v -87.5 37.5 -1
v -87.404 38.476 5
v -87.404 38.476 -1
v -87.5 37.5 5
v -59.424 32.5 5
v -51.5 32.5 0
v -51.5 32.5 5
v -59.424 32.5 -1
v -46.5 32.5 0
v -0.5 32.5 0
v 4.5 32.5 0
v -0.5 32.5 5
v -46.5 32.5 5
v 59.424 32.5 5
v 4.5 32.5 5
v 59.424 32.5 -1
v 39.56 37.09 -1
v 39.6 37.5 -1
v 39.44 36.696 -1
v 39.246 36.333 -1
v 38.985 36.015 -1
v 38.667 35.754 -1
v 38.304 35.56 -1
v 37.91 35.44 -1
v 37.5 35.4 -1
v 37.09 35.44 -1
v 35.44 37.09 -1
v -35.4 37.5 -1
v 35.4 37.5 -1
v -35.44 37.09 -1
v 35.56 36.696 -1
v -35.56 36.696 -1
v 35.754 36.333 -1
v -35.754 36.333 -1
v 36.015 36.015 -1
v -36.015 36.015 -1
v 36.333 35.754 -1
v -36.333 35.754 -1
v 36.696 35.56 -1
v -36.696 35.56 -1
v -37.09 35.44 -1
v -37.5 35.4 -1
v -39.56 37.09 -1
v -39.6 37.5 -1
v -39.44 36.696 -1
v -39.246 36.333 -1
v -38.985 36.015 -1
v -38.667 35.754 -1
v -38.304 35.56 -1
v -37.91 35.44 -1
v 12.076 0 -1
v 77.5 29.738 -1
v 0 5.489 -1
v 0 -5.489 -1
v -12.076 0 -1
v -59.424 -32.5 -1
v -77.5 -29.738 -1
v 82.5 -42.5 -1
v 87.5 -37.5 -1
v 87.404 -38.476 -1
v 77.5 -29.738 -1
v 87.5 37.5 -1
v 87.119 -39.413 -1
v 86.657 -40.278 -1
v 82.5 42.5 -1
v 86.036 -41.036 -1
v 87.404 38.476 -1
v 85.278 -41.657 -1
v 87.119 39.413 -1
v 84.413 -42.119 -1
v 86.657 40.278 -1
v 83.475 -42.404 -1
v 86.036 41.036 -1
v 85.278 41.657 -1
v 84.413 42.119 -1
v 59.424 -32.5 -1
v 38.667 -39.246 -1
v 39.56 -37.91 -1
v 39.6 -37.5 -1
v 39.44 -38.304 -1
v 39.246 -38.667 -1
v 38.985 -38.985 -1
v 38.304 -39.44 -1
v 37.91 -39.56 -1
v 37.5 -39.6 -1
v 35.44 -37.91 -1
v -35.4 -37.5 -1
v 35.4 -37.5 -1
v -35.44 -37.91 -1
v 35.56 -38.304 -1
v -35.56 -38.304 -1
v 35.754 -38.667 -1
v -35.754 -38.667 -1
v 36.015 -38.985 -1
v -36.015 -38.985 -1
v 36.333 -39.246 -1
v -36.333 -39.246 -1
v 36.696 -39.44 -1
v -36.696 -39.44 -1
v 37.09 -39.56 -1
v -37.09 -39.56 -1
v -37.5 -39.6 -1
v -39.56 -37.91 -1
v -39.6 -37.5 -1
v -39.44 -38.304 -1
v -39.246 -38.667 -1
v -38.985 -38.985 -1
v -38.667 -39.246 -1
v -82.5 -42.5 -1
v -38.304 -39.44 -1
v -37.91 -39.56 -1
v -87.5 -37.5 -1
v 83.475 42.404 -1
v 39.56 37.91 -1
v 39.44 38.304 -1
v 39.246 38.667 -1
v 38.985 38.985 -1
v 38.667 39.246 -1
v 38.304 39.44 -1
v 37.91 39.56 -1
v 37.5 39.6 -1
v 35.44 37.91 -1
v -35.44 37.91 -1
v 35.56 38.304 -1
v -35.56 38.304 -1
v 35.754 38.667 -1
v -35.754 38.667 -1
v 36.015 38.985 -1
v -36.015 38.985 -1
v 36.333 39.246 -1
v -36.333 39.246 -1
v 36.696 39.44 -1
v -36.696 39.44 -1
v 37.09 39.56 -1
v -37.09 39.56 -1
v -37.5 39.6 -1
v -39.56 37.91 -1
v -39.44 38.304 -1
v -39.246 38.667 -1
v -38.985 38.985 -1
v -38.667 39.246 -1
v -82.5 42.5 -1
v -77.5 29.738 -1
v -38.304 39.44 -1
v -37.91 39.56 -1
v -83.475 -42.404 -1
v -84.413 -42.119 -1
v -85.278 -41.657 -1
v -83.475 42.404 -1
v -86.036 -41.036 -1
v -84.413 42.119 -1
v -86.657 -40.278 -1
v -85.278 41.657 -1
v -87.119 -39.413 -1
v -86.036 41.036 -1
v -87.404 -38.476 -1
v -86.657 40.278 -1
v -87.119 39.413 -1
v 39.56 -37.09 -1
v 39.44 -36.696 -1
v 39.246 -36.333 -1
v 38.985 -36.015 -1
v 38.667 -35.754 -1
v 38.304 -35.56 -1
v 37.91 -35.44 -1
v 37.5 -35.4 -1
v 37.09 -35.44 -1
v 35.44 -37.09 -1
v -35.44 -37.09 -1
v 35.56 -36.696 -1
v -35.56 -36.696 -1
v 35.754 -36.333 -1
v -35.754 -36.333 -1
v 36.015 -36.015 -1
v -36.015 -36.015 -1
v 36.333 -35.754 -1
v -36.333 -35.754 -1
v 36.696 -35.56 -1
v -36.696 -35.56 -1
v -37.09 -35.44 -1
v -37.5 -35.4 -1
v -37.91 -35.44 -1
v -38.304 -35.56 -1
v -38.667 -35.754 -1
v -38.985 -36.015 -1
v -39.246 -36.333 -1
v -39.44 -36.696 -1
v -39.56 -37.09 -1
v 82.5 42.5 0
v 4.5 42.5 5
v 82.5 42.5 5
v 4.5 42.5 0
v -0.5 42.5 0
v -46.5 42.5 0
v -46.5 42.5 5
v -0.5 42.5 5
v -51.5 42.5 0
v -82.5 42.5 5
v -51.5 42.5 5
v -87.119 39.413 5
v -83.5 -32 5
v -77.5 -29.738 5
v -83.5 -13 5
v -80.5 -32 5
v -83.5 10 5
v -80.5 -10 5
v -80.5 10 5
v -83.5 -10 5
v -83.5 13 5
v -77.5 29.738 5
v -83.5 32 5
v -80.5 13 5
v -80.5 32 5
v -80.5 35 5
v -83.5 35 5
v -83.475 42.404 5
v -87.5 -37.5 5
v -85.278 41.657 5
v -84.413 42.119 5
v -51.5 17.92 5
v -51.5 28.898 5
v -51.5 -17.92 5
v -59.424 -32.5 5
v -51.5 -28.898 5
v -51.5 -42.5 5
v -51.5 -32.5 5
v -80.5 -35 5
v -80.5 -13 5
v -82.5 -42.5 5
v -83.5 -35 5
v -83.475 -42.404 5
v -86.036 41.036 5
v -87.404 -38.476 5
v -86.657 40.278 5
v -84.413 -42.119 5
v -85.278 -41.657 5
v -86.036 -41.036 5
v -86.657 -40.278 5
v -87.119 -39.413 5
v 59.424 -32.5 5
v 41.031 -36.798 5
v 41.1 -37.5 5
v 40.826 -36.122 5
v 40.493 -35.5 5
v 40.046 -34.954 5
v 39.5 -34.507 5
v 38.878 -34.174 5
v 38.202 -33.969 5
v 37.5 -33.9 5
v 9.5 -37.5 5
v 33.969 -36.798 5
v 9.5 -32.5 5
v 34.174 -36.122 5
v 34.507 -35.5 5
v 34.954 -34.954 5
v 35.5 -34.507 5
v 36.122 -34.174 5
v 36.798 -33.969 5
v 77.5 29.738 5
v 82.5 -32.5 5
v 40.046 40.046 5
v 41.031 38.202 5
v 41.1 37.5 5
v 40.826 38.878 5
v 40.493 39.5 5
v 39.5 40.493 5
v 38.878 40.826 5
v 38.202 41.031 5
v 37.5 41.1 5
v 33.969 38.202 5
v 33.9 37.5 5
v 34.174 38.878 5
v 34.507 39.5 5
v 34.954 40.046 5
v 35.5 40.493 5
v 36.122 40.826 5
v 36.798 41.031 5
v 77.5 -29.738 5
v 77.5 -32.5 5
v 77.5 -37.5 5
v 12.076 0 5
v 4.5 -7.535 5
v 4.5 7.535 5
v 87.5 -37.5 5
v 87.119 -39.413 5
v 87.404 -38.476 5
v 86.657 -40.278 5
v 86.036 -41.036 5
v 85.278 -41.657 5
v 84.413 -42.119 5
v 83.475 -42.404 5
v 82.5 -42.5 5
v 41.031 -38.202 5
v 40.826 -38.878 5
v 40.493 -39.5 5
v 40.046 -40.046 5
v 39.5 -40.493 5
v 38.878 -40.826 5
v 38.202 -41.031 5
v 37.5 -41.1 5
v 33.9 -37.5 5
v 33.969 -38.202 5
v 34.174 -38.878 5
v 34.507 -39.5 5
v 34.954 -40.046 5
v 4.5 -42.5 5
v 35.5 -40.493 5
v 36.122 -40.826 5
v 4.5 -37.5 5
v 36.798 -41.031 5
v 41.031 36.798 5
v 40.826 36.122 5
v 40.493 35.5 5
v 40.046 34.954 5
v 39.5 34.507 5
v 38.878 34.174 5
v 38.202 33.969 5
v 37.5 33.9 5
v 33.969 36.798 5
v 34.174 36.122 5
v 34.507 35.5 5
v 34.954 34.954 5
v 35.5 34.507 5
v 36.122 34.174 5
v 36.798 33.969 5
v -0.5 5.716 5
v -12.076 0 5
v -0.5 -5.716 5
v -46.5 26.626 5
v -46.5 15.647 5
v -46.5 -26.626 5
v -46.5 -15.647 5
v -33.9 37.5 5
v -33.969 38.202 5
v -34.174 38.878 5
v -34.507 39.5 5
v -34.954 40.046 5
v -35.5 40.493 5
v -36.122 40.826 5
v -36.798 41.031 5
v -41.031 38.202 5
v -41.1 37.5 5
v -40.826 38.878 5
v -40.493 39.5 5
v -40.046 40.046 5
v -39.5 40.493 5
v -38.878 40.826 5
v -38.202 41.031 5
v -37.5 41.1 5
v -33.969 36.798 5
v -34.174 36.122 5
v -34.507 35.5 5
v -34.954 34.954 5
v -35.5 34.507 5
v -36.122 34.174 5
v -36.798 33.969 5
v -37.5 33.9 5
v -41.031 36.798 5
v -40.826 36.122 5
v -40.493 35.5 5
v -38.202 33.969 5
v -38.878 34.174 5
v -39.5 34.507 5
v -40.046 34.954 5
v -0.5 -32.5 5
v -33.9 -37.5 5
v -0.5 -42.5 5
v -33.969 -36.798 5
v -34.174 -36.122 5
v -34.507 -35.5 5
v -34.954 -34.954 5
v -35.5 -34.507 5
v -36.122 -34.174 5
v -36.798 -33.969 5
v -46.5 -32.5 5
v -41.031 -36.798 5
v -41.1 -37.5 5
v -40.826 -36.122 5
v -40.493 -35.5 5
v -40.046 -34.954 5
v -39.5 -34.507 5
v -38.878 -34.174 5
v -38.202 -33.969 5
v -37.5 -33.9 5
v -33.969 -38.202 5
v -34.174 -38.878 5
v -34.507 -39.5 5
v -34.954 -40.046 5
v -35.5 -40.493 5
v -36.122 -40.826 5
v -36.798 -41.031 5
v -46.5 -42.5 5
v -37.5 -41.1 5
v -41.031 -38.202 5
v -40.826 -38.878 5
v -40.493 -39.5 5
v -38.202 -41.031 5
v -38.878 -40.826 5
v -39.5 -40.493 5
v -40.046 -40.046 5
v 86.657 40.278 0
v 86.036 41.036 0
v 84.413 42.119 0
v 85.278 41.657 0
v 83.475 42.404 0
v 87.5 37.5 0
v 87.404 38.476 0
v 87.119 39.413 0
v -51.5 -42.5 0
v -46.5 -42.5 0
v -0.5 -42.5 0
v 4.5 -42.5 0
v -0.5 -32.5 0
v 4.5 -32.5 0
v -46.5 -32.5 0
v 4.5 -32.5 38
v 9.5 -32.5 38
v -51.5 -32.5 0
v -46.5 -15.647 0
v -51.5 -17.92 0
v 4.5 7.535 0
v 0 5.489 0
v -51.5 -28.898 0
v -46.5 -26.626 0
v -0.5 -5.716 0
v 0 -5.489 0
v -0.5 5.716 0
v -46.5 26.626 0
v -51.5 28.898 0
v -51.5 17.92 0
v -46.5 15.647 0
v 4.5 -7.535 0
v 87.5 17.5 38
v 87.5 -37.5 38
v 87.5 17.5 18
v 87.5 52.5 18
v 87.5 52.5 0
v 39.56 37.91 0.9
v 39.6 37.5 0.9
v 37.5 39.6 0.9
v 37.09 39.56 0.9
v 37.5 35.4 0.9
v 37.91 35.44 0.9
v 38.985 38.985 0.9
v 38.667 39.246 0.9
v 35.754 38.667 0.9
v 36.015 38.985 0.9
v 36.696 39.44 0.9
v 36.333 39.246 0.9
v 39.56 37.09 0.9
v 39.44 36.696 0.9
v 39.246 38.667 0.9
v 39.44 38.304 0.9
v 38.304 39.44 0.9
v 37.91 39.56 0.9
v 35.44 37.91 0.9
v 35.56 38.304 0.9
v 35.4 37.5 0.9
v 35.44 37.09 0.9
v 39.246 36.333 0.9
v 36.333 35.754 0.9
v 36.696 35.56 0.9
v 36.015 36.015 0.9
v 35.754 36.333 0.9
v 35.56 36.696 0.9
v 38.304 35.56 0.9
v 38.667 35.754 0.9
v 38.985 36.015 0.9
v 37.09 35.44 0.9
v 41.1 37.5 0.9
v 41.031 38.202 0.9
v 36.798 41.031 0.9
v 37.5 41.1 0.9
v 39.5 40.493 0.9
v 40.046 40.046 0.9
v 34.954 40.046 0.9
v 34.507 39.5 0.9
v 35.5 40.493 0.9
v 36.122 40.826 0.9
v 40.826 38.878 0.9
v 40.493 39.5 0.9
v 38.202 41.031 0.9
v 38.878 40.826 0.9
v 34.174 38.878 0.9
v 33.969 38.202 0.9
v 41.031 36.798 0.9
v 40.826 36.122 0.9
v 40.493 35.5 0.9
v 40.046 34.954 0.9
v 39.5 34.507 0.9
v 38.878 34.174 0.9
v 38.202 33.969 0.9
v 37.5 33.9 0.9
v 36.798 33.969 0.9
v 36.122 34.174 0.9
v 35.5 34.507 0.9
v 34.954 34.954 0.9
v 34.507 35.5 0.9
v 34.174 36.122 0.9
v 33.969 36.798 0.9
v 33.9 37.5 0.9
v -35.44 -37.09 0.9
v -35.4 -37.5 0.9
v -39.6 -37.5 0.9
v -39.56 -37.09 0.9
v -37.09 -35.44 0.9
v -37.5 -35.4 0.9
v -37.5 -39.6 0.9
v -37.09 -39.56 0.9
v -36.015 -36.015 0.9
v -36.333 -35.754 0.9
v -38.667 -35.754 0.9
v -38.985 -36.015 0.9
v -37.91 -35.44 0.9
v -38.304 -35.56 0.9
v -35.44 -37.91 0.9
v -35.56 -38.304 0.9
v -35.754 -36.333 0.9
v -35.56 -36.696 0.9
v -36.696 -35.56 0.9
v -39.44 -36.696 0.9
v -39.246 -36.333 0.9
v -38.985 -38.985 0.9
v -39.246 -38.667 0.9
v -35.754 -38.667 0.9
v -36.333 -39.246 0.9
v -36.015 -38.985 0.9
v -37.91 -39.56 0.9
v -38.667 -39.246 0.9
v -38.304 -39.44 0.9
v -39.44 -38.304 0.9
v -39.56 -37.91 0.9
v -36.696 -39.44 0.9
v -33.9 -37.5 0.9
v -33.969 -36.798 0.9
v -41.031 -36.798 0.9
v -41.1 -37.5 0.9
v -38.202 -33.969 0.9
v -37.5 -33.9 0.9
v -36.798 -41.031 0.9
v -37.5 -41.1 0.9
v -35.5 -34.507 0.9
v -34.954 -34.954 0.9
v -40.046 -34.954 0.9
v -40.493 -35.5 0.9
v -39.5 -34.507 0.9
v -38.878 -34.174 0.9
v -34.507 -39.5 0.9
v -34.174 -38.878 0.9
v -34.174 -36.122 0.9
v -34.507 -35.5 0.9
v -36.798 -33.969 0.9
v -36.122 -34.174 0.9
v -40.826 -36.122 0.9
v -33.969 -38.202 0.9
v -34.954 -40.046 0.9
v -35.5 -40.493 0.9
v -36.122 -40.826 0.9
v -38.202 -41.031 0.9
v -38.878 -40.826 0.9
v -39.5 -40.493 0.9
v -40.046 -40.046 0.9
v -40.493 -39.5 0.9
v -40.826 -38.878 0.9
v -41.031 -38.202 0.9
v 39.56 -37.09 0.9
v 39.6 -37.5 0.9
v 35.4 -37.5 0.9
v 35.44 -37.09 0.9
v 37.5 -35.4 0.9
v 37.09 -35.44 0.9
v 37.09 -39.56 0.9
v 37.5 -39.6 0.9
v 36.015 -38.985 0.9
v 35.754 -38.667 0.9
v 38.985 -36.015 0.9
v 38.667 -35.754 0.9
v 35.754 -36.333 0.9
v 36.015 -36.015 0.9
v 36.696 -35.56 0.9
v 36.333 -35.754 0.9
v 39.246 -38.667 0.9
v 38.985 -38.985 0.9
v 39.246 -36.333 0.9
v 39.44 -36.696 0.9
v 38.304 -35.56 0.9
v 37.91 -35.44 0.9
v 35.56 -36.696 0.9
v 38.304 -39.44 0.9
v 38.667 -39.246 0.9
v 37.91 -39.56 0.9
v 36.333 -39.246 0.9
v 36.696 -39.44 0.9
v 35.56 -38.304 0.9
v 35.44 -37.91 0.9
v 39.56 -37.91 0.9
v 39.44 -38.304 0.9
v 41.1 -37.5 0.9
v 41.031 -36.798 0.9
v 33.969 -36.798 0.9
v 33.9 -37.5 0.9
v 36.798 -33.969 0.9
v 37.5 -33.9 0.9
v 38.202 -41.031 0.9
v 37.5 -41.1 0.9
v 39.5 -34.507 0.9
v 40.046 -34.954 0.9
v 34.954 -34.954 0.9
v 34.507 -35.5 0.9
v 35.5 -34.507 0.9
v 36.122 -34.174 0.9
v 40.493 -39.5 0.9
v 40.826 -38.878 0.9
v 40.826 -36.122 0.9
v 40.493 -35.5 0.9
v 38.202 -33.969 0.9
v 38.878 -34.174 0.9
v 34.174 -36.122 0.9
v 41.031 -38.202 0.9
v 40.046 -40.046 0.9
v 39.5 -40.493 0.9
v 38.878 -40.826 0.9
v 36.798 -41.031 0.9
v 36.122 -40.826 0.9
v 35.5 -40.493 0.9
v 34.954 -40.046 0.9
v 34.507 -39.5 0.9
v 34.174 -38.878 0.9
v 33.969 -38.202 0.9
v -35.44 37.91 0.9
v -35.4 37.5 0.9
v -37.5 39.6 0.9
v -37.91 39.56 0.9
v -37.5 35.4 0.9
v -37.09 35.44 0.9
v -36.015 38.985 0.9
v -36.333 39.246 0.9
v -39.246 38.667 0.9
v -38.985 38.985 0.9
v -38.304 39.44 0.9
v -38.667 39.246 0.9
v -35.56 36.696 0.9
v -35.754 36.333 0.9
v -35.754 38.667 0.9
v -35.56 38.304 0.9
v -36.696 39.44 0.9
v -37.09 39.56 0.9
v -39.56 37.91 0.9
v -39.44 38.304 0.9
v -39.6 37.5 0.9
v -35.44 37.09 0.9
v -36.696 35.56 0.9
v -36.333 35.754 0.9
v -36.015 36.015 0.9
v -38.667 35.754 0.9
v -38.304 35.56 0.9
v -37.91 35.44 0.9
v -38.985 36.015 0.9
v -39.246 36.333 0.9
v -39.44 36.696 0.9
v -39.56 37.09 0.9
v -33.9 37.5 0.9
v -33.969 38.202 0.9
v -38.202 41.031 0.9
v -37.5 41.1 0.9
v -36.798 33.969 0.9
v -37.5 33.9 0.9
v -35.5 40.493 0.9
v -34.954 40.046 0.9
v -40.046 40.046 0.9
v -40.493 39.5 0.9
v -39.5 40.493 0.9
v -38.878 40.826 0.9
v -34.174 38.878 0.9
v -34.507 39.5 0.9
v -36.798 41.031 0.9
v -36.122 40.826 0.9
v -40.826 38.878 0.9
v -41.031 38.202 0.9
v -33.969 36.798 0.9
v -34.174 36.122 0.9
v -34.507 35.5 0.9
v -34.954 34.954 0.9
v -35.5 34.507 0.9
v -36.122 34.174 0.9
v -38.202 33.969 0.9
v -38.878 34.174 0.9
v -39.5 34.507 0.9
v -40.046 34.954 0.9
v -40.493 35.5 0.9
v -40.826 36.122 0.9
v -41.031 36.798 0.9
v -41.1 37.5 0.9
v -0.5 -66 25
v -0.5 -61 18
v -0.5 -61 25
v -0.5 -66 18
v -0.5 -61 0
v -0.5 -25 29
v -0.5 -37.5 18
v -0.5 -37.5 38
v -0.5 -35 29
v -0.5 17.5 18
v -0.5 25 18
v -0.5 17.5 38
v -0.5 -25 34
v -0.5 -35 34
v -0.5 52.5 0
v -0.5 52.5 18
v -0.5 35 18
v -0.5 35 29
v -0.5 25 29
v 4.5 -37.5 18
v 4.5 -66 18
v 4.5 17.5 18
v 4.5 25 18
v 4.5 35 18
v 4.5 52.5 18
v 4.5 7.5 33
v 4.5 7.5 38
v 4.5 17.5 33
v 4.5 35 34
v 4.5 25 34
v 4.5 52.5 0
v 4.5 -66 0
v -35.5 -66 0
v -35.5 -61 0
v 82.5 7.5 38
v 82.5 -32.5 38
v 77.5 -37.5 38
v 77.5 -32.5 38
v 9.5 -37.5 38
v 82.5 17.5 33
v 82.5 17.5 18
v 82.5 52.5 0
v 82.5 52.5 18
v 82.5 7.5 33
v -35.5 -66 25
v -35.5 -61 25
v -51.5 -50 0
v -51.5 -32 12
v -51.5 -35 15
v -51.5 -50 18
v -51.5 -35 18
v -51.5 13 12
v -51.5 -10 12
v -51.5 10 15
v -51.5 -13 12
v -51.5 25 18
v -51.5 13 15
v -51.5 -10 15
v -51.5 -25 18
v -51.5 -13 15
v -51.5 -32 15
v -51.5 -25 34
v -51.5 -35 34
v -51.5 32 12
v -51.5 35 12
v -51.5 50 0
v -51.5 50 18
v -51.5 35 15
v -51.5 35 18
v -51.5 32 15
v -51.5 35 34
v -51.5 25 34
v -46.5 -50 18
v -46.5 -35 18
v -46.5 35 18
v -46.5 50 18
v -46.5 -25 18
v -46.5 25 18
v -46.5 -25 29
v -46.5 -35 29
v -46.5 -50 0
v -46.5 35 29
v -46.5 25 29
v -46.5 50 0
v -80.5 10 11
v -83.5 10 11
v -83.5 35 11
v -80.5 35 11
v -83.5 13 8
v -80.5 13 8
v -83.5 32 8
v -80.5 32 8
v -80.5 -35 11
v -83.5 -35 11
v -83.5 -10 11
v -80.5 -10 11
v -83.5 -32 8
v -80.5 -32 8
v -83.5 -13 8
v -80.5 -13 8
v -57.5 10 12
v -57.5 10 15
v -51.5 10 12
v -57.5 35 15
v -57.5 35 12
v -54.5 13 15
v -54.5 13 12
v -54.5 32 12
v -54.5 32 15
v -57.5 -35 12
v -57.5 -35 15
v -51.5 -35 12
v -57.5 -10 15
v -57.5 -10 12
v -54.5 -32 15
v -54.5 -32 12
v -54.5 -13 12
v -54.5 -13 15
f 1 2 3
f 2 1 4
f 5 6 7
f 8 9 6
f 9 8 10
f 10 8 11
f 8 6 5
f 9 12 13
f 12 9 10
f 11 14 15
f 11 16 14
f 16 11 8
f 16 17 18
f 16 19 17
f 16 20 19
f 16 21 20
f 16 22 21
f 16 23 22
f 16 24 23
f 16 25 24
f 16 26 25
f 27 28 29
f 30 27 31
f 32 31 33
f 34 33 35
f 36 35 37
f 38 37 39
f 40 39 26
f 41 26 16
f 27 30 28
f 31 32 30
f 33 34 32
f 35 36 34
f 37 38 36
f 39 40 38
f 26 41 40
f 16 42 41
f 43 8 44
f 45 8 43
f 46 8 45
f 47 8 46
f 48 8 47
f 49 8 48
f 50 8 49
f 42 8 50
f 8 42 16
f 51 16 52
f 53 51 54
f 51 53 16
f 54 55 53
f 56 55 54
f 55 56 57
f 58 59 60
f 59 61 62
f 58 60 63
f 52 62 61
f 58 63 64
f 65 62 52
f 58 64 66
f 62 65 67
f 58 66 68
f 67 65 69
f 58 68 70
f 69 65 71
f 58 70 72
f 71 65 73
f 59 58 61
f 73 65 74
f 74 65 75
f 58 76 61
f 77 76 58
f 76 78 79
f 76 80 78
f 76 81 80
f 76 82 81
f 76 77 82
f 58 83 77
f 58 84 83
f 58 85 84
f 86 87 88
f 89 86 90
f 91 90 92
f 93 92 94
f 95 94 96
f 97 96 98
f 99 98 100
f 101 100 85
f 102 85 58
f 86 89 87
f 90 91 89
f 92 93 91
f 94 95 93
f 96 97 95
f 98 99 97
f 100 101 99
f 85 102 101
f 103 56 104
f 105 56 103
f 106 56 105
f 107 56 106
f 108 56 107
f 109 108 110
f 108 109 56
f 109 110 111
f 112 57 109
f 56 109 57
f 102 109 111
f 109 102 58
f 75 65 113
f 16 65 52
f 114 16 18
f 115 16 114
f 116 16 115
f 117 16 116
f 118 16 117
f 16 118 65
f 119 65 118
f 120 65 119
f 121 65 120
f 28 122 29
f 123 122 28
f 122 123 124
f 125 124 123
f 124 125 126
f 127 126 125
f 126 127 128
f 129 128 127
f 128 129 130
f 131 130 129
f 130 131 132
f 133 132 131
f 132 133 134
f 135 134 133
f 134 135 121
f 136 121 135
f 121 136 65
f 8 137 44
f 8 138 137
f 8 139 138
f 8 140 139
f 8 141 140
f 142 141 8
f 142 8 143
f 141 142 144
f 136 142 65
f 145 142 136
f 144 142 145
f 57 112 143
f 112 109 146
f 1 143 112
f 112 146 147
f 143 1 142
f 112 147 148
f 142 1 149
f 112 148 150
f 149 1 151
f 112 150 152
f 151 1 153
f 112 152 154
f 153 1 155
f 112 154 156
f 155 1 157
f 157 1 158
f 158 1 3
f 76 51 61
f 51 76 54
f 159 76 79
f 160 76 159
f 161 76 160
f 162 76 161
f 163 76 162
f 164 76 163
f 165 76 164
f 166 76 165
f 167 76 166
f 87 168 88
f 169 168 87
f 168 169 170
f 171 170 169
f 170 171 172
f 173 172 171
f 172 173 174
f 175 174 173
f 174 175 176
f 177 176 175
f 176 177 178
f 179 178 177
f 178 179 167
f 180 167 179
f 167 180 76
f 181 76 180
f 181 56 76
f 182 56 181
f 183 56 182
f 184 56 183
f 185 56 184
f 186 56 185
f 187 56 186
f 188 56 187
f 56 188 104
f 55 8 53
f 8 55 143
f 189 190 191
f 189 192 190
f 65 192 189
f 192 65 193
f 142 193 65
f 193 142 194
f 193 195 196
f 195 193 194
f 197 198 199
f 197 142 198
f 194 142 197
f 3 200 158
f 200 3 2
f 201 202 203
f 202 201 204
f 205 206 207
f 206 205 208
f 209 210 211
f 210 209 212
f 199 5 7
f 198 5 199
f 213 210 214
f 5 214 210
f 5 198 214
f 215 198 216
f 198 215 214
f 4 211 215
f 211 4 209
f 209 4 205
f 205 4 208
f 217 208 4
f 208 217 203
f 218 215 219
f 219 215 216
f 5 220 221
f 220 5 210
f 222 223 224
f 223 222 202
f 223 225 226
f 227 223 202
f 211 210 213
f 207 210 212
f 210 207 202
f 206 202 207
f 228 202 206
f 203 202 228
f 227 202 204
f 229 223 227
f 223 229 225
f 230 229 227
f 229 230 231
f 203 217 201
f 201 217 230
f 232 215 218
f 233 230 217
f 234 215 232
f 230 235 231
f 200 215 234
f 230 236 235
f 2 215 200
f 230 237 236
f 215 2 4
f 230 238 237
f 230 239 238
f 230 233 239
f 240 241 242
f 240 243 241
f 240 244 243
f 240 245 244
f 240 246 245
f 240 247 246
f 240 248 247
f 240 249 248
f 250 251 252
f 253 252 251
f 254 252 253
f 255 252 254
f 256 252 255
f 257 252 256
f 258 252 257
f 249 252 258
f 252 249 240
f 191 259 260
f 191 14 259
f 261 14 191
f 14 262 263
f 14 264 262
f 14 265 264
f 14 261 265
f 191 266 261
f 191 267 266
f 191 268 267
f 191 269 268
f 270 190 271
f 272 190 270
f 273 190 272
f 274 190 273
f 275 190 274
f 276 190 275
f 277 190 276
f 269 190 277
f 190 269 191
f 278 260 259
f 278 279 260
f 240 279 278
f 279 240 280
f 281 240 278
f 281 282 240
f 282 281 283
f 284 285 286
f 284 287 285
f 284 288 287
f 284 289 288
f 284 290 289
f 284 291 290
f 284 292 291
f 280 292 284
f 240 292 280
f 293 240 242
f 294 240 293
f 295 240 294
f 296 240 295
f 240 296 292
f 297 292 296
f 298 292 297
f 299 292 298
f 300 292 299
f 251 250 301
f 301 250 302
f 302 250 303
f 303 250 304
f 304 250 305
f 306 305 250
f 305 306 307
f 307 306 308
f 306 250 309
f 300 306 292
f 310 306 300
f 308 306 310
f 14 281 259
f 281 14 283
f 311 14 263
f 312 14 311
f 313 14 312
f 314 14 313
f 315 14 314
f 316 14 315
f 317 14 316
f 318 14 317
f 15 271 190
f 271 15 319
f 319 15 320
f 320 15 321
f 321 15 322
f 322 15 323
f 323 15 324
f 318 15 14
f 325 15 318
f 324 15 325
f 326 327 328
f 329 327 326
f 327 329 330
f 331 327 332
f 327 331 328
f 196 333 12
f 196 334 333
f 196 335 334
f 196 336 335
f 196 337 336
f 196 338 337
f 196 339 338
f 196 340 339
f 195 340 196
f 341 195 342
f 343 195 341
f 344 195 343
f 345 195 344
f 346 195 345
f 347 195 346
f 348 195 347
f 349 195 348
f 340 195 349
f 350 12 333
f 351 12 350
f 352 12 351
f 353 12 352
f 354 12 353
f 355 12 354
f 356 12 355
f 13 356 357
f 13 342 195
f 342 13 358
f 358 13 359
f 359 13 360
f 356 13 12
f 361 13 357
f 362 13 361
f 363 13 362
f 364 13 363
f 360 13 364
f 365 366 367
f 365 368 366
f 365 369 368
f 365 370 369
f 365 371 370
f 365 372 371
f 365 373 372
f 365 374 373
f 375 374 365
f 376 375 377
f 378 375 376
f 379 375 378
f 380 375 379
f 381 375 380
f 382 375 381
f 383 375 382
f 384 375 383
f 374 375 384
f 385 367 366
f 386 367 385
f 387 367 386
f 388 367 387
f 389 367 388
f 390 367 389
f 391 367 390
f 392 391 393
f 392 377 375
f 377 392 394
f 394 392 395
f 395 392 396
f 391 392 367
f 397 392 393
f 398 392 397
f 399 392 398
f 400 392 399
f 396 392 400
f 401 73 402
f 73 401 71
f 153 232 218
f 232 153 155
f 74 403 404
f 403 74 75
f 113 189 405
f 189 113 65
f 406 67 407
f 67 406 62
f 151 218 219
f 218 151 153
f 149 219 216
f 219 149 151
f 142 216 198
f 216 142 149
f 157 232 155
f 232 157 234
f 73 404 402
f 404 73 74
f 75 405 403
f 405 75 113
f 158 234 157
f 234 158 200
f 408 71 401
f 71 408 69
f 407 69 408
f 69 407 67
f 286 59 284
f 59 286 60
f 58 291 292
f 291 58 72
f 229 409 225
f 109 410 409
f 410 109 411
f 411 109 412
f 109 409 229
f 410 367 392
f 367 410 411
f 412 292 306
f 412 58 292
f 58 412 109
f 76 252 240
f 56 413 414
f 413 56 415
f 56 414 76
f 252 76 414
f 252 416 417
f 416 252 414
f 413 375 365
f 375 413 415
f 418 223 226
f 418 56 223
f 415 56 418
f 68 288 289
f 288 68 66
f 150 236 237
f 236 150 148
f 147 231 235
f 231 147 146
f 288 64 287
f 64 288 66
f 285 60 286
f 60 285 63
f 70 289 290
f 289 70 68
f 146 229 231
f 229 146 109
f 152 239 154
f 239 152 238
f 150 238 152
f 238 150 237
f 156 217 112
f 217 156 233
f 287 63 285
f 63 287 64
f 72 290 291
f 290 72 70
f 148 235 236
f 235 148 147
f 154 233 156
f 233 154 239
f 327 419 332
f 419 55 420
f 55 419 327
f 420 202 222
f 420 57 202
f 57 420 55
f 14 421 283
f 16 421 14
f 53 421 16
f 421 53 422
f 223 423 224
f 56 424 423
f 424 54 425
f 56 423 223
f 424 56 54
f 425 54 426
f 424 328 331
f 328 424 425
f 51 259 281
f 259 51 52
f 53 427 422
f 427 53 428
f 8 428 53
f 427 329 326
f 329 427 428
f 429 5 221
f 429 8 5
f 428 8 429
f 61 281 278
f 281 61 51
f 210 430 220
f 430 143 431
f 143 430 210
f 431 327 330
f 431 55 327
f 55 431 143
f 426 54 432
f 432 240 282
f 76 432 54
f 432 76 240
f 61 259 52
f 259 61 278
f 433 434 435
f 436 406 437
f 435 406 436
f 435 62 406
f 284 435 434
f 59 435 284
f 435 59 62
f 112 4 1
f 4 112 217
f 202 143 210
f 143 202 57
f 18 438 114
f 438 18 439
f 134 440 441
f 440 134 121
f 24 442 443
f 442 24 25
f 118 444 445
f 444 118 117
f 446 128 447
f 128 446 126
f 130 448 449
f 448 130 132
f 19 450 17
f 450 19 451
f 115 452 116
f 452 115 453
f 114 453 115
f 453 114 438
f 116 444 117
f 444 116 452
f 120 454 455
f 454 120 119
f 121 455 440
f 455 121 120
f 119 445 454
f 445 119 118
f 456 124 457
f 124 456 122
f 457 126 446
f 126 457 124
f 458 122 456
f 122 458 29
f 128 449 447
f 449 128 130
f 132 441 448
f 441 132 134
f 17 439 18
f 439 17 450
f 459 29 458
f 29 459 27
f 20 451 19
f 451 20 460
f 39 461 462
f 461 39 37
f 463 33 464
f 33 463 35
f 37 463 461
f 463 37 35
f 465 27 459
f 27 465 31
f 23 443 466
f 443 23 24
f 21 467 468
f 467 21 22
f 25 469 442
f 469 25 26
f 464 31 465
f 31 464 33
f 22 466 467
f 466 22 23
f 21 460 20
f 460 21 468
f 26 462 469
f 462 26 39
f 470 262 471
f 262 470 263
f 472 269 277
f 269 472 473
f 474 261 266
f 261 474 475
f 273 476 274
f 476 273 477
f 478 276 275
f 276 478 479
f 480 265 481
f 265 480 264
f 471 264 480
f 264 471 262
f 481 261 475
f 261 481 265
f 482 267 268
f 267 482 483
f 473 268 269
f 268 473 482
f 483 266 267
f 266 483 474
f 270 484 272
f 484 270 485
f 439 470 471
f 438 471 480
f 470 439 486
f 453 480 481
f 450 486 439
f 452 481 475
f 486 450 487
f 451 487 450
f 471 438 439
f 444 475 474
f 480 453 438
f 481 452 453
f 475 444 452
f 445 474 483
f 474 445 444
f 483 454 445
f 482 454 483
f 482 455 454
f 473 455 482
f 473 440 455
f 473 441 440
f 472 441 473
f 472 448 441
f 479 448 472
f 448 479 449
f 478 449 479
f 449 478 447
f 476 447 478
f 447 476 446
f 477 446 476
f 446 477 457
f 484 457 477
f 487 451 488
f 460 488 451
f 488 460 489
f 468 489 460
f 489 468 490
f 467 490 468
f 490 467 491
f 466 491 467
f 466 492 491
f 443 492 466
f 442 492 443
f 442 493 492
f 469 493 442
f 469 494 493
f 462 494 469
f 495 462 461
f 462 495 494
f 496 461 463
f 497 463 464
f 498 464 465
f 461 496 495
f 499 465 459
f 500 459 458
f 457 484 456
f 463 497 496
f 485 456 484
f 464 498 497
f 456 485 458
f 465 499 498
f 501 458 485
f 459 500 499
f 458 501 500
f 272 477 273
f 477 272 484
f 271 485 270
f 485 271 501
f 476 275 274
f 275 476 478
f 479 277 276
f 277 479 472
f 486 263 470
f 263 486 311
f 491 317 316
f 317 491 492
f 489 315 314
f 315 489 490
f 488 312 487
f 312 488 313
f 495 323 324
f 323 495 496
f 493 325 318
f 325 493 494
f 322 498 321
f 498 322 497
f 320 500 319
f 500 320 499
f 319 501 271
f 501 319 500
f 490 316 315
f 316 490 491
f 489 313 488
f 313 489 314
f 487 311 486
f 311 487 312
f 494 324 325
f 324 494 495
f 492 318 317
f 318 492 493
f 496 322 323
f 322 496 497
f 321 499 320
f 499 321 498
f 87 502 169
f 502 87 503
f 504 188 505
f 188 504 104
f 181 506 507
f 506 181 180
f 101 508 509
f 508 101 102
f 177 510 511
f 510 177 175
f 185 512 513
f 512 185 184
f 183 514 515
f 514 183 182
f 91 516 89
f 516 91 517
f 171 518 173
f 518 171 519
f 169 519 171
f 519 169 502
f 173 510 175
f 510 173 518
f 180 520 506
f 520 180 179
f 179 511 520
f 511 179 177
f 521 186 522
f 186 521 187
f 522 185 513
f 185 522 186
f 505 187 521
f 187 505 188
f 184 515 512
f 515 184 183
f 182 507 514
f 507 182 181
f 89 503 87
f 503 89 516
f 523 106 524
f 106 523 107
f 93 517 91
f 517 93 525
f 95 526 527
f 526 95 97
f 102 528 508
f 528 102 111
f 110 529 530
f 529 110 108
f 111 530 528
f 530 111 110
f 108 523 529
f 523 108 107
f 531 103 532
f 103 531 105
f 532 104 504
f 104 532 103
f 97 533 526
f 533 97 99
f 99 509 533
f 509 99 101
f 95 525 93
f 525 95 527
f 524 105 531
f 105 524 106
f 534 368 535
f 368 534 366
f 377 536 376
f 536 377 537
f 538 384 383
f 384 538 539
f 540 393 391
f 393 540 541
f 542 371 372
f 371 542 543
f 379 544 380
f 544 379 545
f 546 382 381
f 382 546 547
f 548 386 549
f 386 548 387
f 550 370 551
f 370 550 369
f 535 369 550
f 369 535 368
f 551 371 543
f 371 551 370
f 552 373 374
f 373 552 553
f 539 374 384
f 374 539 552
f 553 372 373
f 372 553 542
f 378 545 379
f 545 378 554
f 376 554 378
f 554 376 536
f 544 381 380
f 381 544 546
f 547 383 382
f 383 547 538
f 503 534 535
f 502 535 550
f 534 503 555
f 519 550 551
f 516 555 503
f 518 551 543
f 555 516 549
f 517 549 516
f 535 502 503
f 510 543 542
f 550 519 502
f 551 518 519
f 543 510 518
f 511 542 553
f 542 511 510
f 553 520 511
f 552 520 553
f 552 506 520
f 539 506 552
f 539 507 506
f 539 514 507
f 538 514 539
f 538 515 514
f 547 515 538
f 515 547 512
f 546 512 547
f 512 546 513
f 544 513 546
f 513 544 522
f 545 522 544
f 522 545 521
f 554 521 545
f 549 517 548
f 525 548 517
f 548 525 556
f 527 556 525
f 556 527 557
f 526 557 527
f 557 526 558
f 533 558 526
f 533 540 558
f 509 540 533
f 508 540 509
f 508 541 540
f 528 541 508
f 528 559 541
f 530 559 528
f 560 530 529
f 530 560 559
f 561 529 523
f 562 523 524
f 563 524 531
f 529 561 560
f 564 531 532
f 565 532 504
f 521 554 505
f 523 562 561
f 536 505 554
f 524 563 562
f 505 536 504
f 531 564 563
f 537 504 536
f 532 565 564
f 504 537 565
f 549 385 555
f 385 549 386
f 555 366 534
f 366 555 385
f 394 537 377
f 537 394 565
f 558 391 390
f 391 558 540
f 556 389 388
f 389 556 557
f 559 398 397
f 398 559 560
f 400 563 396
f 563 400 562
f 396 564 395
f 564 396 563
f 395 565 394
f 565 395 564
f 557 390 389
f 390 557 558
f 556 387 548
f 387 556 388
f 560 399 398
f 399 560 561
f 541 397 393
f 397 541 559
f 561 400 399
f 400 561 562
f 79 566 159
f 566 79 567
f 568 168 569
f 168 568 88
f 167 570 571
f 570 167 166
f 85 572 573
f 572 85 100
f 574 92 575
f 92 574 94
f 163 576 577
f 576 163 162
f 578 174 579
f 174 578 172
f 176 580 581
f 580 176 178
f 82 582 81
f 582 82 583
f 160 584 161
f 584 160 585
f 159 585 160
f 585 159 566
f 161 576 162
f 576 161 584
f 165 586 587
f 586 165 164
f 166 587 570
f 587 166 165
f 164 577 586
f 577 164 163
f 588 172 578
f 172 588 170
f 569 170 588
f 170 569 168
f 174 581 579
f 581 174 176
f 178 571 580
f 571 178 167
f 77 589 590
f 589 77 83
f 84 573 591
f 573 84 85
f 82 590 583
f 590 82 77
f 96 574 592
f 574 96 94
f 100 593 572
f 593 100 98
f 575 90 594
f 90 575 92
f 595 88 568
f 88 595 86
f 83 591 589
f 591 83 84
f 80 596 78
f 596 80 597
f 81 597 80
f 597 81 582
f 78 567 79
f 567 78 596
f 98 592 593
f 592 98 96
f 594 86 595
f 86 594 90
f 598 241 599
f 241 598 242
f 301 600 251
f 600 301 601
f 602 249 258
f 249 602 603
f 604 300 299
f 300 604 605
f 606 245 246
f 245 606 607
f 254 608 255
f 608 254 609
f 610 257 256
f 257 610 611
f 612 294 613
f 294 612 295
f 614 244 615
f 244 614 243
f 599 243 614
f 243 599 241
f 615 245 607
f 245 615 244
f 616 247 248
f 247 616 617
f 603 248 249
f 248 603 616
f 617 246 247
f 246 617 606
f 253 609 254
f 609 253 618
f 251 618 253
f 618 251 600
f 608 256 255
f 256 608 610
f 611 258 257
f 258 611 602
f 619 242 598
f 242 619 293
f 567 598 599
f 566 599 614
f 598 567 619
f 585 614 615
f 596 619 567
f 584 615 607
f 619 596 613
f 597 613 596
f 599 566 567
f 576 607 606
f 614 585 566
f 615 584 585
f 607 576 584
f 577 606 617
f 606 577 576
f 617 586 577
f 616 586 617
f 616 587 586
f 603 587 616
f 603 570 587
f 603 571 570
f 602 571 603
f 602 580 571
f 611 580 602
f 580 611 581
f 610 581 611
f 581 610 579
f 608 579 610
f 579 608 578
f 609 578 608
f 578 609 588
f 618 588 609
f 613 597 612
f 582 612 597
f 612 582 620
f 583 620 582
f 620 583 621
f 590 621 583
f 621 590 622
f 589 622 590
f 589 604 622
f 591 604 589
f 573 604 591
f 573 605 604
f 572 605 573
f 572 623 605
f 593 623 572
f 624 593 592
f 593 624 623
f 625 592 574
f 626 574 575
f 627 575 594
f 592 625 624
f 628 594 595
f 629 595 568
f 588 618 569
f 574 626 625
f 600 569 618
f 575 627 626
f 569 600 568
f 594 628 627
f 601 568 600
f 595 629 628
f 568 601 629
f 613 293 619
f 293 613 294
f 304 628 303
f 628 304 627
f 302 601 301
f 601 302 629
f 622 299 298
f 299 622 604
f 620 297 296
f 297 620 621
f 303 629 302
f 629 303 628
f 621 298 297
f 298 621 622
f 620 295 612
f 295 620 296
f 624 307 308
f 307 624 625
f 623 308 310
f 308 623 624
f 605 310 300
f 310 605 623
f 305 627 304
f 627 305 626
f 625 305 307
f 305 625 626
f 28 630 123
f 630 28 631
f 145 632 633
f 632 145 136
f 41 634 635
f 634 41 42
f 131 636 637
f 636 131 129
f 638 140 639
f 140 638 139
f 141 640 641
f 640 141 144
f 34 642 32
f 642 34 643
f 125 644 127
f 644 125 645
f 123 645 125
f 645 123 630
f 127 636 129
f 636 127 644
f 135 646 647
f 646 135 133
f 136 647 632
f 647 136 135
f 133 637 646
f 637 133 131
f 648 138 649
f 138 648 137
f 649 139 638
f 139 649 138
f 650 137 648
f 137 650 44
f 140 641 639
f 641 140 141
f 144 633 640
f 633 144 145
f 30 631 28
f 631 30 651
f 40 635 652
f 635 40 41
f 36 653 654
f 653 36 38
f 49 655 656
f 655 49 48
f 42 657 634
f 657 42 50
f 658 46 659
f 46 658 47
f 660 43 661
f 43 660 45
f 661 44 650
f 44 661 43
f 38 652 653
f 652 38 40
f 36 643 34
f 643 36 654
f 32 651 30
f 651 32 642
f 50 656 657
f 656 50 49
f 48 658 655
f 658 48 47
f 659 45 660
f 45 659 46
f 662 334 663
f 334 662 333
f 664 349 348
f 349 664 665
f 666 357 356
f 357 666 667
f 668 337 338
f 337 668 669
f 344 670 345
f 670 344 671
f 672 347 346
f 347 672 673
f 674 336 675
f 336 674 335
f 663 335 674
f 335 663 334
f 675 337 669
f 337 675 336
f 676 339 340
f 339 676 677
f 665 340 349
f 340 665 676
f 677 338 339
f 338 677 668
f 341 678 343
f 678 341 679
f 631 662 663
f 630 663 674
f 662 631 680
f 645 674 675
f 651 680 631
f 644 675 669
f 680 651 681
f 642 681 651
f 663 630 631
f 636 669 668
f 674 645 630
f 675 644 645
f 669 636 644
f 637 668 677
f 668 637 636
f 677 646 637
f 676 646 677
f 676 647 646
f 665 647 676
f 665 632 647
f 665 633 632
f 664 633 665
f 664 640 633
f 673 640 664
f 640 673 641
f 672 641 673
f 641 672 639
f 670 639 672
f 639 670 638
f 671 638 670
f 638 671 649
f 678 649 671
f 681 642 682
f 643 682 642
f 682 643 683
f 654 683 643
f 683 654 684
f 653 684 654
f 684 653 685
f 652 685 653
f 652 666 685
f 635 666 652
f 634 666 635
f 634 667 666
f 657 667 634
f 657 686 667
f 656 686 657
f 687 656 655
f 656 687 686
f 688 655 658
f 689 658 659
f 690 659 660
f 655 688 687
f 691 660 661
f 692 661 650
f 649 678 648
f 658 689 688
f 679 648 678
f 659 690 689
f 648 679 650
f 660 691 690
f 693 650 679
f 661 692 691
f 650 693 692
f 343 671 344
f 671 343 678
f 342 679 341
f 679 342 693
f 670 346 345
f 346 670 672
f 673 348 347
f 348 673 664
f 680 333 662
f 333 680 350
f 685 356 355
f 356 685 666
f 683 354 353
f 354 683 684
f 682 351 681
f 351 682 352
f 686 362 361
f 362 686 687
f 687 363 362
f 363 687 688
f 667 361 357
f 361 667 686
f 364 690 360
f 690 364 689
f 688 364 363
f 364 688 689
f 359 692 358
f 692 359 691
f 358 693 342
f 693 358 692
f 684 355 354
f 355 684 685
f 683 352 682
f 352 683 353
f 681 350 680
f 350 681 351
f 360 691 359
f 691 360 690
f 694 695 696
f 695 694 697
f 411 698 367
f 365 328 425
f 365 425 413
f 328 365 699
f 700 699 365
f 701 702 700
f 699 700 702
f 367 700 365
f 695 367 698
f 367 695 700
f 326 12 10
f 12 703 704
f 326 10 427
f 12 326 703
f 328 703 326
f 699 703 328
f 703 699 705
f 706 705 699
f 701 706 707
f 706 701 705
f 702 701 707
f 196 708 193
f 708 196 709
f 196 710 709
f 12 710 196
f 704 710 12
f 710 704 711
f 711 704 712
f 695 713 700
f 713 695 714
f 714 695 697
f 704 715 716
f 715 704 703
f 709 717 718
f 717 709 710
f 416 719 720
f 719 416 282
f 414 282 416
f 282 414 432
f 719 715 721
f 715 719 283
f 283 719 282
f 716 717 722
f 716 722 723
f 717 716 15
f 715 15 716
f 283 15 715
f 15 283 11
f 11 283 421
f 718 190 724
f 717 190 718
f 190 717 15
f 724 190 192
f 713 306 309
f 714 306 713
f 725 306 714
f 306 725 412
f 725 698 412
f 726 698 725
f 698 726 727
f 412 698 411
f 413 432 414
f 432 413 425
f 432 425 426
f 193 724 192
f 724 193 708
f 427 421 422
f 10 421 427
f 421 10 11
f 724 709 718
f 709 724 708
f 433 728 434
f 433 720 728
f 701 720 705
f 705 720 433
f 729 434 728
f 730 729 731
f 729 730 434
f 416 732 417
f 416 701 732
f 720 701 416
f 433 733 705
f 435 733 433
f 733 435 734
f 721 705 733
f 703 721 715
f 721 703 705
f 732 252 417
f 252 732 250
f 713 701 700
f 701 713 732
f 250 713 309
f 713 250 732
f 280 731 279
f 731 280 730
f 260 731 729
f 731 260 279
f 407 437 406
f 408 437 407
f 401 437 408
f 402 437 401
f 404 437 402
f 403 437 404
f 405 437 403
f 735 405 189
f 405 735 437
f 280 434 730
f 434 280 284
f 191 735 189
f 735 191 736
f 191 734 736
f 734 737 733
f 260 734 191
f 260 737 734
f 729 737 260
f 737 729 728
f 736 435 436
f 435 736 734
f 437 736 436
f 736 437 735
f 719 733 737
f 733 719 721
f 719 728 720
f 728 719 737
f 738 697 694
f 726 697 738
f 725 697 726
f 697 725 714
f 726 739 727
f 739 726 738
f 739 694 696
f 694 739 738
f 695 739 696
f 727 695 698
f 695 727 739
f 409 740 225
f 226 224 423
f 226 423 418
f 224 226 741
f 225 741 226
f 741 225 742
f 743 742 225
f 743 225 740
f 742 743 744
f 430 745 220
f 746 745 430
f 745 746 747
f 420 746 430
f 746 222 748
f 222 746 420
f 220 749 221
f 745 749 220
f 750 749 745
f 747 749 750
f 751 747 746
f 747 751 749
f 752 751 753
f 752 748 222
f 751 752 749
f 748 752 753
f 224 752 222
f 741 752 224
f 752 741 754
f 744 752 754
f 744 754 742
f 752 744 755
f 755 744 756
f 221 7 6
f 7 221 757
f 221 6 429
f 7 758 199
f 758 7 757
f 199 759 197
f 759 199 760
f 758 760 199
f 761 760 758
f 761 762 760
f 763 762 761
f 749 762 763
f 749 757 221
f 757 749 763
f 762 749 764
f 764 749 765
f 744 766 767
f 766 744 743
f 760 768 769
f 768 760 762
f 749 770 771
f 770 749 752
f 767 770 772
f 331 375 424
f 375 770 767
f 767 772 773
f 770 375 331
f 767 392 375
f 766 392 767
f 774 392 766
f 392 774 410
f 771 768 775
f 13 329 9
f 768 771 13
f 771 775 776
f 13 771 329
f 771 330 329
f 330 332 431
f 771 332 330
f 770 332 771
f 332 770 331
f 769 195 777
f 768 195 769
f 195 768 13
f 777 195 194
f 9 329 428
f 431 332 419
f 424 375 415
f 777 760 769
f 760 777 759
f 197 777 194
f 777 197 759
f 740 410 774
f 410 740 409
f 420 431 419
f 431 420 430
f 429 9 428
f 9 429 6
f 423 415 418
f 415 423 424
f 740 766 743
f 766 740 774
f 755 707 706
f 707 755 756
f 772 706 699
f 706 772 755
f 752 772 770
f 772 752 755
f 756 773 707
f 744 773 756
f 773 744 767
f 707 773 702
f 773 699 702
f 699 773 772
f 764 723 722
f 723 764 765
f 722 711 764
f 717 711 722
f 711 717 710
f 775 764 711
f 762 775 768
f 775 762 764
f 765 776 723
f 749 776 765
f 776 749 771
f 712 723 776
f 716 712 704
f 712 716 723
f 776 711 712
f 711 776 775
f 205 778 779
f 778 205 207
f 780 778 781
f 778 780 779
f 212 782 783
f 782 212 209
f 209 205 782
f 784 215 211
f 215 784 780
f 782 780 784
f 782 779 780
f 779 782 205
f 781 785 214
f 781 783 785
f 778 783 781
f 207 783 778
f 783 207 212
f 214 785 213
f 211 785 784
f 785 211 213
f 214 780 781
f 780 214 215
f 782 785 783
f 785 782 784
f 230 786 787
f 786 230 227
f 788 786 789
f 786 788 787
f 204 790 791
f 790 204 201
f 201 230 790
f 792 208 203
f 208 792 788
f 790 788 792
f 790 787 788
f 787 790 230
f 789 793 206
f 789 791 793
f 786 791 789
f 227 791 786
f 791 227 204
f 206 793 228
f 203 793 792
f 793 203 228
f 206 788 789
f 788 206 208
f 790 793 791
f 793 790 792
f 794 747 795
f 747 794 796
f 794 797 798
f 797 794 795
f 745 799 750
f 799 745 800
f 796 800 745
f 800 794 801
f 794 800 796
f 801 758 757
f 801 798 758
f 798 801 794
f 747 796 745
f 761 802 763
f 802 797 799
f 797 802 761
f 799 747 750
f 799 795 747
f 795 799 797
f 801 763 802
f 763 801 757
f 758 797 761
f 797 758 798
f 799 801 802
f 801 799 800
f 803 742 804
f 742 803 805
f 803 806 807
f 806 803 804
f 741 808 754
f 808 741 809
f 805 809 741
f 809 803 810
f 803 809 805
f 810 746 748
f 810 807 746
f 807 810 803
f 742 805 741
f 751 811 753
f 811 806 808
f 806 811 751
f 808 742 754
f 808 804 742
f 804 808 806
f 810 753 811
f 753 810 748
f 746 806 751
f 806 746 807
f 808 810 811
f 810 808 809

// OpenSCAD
vesa_distance = 75;
vesa_distance_half = vesa_distance / 2;
screw_hole_d = 4.2;
screw_hole_od = 7.2;
$fn = 32;

module mounting_base_body() {
    vesa_z_offset = -1;
    vesa_h = 6;
    hull() {
        translate([-165/2, vesa_distance_half, vesa_z_offset]) cylinder(d=10, h=vesa_h);
        translate([165/2, vesa_distance_half, vesa_z_offset]) cylinder(d=10, h=vesa_h);
    }
    hull() {
        translate([-165/2, -vesa_distance_half, vesa_z_offset]) cylinder(d=10, h=vesa_h);
        translate([165/2, -vesa_distance_half, vesa_z_offset]) cylinder(d=10, h=vesa_h);
    }  
    hull() {
        translate([-165/2, -vesa_distance_half, vesa_z_offset]) cylinder(d=10, h=vesa_h);
        translate([165/2, vesa_distance_half, vesa_z_offset]) cylinder(d=10, h=vesa_h);
    }    
    hull() {
        translate([-165/2, vesa_distance_half, vesa_z_offset]) cylinder(d=10, h=vesa_h);
        translate([165/2, -vesa_distance_half, vesa_z_offset]) cylinder(d=10, h=vesa_h);
    }        
    hull() {
        translate([165/2, vesa_distance_half, vesa_z_offset]) cylinder(d=10, h=vesa_h);
        translate([165/2, -vesa_distance_half, vesa_z_offset]) cylinder(d=10, h=vesa_h);
    }    
    hull() {
        translate([-165/2, vesa_distance_half, vesa_z_offset]) cylinder(d=10, h=vesa_h);
        translate([-165/2, -vesa_distance_half, vesa_z_offset]) cylinder(d=10, h=vesa_h);
    }        
}

module mounting_base() {
    difference() {
        mounting_base_body();
        // top right
        translate([vesa_distance_half, vesa_distance_half, -1.1]) cylinder(d=screw_hole_d, h=3.1);
        translate([vesa_distance_half, vesa_distance_half, 0.9]) cylinder(d=screw_hole_od, h=4.2);
        // bottom left
        translate([-vesa_distance_half, -vesa_distance_half, -1.1]) cylinder(d=screw_hole_d, h=3.1);
        translate([-vesa_distance_half, -vesa_distance_half, 0.9]) cylinder(d=screw_hole_od, h=4.2);
        // bottom right
        translate([vesa_distance_half, -vesa_distance_half, -1.1]) cylinder(d=screw_hole_d, h=3.1);
        translate([vesa_distance_half, -vesa_distance_half, 0.9]) cylinder(d=screw_hole_od, h=4.2);
        // top left
        translate([-vesa_distance_half, vesa_distance_half, -1.1]) cylinder(d=screw_hole_d, h=3.1);    
        translate([-vesa_distance_half, vesa_distance_half, 0.9]) cylinder(d=screw_hole_od, h=4.2);    
    }
}

module receiver_mount() {
    // left brace
    translate([-0.5, -vesa_distance_half + 5, 0]) cube([5, vesa_distance + 10, 18]);
    translate([-0.5, -vesa_distance_half + 5, 0]) cube([5, 50, 38]);
    translate([-0.5, -vesa_distance_half, 0]) cube([10, 5, 38]);
    
    // right brace
    translate([77.5, -vesa_distance_half, 0]) cube([10, 5, 38]);
    translate([82.5, -vesa_distance_half + 5, 0]) cube([5, 50, 38]);
    translate([82.5, -vesa_distance_half + 5, 0]) cube([5, vesa_distance + 10, 18]);
    
    // top bar
    translate([-0.5, 7.5, 33]) cube([88, 10, 5]);
}

module battery_mount() {
    translate([-0.5, -66, 0]) cube([5, 115, 18]);
    translate([-35.5, -66, 0]) cube([35, 5, 25]);
    translate([-51.5, -50, 0]) cube([5, 100, 18]);
    
    translate([-0.5, -35, 0]) cube([5, 10, 34]);
    translate([-51.5, -35, 0]) cube([5, 10, 34]);
    translate([-51.5, -35, 29]) cube([56, 10, 5]);
    
    translate([-0.5, 25, 0]) cube([5, 10, 34]);
    translate([-51.5, 25, 0]) cube([5, 10, 34]);
    translate([-51.5, 25, 29]) cube([56, 10, 5]);
}

module velcro_hook() {
    cube([3, 3, 6]);
    translate([22, 0, 0]) cube([3, 3, 6]);
    translate([0, 0, 3]) cube([25, 3, 3]);
}

module receiver() {
    color("DarkGray", 0.8) cube([76, 84, 26]);
}

module battery() {
    color("MidnightBlue", 0.8) cube([44, 138, 22]);
    translate([0, 5, 13]) rotate([90, 0, 0]) color("Red", 0.8) cylinder(d=5, h=50);
    translate([0, 5, 7]) rotate([90, 0, 0]) color("Black", 0.8) cylinder(d=5, h=50);
}

module screen() {
    color("Black", 0.5) cube([182, 130, 5]);
}

union() {
    mounting_base();
    receiver_mount();
    battery_mount();
    translate([-80.5, 10, 5]) rotate([0, 0, 90]) velcro_hook();
    translate([-80.5, -35, 5]) rotate([0, 0, 90]) velcro_hook();
    translate([-51.5, 10, 15]) rotate([-90, 0, 90]) velcro_hook();
    translate([-51.5, -35, 15]) rotate([-90, 0, 90]) velcro_hook();
    
    %translate([6, -vesa_distance_half +6 , 6]) receiver();
    %translate([-45.5, -60, 6]) battery();
    %translate([-182/2, -130/2, -6]) screen();
} 
